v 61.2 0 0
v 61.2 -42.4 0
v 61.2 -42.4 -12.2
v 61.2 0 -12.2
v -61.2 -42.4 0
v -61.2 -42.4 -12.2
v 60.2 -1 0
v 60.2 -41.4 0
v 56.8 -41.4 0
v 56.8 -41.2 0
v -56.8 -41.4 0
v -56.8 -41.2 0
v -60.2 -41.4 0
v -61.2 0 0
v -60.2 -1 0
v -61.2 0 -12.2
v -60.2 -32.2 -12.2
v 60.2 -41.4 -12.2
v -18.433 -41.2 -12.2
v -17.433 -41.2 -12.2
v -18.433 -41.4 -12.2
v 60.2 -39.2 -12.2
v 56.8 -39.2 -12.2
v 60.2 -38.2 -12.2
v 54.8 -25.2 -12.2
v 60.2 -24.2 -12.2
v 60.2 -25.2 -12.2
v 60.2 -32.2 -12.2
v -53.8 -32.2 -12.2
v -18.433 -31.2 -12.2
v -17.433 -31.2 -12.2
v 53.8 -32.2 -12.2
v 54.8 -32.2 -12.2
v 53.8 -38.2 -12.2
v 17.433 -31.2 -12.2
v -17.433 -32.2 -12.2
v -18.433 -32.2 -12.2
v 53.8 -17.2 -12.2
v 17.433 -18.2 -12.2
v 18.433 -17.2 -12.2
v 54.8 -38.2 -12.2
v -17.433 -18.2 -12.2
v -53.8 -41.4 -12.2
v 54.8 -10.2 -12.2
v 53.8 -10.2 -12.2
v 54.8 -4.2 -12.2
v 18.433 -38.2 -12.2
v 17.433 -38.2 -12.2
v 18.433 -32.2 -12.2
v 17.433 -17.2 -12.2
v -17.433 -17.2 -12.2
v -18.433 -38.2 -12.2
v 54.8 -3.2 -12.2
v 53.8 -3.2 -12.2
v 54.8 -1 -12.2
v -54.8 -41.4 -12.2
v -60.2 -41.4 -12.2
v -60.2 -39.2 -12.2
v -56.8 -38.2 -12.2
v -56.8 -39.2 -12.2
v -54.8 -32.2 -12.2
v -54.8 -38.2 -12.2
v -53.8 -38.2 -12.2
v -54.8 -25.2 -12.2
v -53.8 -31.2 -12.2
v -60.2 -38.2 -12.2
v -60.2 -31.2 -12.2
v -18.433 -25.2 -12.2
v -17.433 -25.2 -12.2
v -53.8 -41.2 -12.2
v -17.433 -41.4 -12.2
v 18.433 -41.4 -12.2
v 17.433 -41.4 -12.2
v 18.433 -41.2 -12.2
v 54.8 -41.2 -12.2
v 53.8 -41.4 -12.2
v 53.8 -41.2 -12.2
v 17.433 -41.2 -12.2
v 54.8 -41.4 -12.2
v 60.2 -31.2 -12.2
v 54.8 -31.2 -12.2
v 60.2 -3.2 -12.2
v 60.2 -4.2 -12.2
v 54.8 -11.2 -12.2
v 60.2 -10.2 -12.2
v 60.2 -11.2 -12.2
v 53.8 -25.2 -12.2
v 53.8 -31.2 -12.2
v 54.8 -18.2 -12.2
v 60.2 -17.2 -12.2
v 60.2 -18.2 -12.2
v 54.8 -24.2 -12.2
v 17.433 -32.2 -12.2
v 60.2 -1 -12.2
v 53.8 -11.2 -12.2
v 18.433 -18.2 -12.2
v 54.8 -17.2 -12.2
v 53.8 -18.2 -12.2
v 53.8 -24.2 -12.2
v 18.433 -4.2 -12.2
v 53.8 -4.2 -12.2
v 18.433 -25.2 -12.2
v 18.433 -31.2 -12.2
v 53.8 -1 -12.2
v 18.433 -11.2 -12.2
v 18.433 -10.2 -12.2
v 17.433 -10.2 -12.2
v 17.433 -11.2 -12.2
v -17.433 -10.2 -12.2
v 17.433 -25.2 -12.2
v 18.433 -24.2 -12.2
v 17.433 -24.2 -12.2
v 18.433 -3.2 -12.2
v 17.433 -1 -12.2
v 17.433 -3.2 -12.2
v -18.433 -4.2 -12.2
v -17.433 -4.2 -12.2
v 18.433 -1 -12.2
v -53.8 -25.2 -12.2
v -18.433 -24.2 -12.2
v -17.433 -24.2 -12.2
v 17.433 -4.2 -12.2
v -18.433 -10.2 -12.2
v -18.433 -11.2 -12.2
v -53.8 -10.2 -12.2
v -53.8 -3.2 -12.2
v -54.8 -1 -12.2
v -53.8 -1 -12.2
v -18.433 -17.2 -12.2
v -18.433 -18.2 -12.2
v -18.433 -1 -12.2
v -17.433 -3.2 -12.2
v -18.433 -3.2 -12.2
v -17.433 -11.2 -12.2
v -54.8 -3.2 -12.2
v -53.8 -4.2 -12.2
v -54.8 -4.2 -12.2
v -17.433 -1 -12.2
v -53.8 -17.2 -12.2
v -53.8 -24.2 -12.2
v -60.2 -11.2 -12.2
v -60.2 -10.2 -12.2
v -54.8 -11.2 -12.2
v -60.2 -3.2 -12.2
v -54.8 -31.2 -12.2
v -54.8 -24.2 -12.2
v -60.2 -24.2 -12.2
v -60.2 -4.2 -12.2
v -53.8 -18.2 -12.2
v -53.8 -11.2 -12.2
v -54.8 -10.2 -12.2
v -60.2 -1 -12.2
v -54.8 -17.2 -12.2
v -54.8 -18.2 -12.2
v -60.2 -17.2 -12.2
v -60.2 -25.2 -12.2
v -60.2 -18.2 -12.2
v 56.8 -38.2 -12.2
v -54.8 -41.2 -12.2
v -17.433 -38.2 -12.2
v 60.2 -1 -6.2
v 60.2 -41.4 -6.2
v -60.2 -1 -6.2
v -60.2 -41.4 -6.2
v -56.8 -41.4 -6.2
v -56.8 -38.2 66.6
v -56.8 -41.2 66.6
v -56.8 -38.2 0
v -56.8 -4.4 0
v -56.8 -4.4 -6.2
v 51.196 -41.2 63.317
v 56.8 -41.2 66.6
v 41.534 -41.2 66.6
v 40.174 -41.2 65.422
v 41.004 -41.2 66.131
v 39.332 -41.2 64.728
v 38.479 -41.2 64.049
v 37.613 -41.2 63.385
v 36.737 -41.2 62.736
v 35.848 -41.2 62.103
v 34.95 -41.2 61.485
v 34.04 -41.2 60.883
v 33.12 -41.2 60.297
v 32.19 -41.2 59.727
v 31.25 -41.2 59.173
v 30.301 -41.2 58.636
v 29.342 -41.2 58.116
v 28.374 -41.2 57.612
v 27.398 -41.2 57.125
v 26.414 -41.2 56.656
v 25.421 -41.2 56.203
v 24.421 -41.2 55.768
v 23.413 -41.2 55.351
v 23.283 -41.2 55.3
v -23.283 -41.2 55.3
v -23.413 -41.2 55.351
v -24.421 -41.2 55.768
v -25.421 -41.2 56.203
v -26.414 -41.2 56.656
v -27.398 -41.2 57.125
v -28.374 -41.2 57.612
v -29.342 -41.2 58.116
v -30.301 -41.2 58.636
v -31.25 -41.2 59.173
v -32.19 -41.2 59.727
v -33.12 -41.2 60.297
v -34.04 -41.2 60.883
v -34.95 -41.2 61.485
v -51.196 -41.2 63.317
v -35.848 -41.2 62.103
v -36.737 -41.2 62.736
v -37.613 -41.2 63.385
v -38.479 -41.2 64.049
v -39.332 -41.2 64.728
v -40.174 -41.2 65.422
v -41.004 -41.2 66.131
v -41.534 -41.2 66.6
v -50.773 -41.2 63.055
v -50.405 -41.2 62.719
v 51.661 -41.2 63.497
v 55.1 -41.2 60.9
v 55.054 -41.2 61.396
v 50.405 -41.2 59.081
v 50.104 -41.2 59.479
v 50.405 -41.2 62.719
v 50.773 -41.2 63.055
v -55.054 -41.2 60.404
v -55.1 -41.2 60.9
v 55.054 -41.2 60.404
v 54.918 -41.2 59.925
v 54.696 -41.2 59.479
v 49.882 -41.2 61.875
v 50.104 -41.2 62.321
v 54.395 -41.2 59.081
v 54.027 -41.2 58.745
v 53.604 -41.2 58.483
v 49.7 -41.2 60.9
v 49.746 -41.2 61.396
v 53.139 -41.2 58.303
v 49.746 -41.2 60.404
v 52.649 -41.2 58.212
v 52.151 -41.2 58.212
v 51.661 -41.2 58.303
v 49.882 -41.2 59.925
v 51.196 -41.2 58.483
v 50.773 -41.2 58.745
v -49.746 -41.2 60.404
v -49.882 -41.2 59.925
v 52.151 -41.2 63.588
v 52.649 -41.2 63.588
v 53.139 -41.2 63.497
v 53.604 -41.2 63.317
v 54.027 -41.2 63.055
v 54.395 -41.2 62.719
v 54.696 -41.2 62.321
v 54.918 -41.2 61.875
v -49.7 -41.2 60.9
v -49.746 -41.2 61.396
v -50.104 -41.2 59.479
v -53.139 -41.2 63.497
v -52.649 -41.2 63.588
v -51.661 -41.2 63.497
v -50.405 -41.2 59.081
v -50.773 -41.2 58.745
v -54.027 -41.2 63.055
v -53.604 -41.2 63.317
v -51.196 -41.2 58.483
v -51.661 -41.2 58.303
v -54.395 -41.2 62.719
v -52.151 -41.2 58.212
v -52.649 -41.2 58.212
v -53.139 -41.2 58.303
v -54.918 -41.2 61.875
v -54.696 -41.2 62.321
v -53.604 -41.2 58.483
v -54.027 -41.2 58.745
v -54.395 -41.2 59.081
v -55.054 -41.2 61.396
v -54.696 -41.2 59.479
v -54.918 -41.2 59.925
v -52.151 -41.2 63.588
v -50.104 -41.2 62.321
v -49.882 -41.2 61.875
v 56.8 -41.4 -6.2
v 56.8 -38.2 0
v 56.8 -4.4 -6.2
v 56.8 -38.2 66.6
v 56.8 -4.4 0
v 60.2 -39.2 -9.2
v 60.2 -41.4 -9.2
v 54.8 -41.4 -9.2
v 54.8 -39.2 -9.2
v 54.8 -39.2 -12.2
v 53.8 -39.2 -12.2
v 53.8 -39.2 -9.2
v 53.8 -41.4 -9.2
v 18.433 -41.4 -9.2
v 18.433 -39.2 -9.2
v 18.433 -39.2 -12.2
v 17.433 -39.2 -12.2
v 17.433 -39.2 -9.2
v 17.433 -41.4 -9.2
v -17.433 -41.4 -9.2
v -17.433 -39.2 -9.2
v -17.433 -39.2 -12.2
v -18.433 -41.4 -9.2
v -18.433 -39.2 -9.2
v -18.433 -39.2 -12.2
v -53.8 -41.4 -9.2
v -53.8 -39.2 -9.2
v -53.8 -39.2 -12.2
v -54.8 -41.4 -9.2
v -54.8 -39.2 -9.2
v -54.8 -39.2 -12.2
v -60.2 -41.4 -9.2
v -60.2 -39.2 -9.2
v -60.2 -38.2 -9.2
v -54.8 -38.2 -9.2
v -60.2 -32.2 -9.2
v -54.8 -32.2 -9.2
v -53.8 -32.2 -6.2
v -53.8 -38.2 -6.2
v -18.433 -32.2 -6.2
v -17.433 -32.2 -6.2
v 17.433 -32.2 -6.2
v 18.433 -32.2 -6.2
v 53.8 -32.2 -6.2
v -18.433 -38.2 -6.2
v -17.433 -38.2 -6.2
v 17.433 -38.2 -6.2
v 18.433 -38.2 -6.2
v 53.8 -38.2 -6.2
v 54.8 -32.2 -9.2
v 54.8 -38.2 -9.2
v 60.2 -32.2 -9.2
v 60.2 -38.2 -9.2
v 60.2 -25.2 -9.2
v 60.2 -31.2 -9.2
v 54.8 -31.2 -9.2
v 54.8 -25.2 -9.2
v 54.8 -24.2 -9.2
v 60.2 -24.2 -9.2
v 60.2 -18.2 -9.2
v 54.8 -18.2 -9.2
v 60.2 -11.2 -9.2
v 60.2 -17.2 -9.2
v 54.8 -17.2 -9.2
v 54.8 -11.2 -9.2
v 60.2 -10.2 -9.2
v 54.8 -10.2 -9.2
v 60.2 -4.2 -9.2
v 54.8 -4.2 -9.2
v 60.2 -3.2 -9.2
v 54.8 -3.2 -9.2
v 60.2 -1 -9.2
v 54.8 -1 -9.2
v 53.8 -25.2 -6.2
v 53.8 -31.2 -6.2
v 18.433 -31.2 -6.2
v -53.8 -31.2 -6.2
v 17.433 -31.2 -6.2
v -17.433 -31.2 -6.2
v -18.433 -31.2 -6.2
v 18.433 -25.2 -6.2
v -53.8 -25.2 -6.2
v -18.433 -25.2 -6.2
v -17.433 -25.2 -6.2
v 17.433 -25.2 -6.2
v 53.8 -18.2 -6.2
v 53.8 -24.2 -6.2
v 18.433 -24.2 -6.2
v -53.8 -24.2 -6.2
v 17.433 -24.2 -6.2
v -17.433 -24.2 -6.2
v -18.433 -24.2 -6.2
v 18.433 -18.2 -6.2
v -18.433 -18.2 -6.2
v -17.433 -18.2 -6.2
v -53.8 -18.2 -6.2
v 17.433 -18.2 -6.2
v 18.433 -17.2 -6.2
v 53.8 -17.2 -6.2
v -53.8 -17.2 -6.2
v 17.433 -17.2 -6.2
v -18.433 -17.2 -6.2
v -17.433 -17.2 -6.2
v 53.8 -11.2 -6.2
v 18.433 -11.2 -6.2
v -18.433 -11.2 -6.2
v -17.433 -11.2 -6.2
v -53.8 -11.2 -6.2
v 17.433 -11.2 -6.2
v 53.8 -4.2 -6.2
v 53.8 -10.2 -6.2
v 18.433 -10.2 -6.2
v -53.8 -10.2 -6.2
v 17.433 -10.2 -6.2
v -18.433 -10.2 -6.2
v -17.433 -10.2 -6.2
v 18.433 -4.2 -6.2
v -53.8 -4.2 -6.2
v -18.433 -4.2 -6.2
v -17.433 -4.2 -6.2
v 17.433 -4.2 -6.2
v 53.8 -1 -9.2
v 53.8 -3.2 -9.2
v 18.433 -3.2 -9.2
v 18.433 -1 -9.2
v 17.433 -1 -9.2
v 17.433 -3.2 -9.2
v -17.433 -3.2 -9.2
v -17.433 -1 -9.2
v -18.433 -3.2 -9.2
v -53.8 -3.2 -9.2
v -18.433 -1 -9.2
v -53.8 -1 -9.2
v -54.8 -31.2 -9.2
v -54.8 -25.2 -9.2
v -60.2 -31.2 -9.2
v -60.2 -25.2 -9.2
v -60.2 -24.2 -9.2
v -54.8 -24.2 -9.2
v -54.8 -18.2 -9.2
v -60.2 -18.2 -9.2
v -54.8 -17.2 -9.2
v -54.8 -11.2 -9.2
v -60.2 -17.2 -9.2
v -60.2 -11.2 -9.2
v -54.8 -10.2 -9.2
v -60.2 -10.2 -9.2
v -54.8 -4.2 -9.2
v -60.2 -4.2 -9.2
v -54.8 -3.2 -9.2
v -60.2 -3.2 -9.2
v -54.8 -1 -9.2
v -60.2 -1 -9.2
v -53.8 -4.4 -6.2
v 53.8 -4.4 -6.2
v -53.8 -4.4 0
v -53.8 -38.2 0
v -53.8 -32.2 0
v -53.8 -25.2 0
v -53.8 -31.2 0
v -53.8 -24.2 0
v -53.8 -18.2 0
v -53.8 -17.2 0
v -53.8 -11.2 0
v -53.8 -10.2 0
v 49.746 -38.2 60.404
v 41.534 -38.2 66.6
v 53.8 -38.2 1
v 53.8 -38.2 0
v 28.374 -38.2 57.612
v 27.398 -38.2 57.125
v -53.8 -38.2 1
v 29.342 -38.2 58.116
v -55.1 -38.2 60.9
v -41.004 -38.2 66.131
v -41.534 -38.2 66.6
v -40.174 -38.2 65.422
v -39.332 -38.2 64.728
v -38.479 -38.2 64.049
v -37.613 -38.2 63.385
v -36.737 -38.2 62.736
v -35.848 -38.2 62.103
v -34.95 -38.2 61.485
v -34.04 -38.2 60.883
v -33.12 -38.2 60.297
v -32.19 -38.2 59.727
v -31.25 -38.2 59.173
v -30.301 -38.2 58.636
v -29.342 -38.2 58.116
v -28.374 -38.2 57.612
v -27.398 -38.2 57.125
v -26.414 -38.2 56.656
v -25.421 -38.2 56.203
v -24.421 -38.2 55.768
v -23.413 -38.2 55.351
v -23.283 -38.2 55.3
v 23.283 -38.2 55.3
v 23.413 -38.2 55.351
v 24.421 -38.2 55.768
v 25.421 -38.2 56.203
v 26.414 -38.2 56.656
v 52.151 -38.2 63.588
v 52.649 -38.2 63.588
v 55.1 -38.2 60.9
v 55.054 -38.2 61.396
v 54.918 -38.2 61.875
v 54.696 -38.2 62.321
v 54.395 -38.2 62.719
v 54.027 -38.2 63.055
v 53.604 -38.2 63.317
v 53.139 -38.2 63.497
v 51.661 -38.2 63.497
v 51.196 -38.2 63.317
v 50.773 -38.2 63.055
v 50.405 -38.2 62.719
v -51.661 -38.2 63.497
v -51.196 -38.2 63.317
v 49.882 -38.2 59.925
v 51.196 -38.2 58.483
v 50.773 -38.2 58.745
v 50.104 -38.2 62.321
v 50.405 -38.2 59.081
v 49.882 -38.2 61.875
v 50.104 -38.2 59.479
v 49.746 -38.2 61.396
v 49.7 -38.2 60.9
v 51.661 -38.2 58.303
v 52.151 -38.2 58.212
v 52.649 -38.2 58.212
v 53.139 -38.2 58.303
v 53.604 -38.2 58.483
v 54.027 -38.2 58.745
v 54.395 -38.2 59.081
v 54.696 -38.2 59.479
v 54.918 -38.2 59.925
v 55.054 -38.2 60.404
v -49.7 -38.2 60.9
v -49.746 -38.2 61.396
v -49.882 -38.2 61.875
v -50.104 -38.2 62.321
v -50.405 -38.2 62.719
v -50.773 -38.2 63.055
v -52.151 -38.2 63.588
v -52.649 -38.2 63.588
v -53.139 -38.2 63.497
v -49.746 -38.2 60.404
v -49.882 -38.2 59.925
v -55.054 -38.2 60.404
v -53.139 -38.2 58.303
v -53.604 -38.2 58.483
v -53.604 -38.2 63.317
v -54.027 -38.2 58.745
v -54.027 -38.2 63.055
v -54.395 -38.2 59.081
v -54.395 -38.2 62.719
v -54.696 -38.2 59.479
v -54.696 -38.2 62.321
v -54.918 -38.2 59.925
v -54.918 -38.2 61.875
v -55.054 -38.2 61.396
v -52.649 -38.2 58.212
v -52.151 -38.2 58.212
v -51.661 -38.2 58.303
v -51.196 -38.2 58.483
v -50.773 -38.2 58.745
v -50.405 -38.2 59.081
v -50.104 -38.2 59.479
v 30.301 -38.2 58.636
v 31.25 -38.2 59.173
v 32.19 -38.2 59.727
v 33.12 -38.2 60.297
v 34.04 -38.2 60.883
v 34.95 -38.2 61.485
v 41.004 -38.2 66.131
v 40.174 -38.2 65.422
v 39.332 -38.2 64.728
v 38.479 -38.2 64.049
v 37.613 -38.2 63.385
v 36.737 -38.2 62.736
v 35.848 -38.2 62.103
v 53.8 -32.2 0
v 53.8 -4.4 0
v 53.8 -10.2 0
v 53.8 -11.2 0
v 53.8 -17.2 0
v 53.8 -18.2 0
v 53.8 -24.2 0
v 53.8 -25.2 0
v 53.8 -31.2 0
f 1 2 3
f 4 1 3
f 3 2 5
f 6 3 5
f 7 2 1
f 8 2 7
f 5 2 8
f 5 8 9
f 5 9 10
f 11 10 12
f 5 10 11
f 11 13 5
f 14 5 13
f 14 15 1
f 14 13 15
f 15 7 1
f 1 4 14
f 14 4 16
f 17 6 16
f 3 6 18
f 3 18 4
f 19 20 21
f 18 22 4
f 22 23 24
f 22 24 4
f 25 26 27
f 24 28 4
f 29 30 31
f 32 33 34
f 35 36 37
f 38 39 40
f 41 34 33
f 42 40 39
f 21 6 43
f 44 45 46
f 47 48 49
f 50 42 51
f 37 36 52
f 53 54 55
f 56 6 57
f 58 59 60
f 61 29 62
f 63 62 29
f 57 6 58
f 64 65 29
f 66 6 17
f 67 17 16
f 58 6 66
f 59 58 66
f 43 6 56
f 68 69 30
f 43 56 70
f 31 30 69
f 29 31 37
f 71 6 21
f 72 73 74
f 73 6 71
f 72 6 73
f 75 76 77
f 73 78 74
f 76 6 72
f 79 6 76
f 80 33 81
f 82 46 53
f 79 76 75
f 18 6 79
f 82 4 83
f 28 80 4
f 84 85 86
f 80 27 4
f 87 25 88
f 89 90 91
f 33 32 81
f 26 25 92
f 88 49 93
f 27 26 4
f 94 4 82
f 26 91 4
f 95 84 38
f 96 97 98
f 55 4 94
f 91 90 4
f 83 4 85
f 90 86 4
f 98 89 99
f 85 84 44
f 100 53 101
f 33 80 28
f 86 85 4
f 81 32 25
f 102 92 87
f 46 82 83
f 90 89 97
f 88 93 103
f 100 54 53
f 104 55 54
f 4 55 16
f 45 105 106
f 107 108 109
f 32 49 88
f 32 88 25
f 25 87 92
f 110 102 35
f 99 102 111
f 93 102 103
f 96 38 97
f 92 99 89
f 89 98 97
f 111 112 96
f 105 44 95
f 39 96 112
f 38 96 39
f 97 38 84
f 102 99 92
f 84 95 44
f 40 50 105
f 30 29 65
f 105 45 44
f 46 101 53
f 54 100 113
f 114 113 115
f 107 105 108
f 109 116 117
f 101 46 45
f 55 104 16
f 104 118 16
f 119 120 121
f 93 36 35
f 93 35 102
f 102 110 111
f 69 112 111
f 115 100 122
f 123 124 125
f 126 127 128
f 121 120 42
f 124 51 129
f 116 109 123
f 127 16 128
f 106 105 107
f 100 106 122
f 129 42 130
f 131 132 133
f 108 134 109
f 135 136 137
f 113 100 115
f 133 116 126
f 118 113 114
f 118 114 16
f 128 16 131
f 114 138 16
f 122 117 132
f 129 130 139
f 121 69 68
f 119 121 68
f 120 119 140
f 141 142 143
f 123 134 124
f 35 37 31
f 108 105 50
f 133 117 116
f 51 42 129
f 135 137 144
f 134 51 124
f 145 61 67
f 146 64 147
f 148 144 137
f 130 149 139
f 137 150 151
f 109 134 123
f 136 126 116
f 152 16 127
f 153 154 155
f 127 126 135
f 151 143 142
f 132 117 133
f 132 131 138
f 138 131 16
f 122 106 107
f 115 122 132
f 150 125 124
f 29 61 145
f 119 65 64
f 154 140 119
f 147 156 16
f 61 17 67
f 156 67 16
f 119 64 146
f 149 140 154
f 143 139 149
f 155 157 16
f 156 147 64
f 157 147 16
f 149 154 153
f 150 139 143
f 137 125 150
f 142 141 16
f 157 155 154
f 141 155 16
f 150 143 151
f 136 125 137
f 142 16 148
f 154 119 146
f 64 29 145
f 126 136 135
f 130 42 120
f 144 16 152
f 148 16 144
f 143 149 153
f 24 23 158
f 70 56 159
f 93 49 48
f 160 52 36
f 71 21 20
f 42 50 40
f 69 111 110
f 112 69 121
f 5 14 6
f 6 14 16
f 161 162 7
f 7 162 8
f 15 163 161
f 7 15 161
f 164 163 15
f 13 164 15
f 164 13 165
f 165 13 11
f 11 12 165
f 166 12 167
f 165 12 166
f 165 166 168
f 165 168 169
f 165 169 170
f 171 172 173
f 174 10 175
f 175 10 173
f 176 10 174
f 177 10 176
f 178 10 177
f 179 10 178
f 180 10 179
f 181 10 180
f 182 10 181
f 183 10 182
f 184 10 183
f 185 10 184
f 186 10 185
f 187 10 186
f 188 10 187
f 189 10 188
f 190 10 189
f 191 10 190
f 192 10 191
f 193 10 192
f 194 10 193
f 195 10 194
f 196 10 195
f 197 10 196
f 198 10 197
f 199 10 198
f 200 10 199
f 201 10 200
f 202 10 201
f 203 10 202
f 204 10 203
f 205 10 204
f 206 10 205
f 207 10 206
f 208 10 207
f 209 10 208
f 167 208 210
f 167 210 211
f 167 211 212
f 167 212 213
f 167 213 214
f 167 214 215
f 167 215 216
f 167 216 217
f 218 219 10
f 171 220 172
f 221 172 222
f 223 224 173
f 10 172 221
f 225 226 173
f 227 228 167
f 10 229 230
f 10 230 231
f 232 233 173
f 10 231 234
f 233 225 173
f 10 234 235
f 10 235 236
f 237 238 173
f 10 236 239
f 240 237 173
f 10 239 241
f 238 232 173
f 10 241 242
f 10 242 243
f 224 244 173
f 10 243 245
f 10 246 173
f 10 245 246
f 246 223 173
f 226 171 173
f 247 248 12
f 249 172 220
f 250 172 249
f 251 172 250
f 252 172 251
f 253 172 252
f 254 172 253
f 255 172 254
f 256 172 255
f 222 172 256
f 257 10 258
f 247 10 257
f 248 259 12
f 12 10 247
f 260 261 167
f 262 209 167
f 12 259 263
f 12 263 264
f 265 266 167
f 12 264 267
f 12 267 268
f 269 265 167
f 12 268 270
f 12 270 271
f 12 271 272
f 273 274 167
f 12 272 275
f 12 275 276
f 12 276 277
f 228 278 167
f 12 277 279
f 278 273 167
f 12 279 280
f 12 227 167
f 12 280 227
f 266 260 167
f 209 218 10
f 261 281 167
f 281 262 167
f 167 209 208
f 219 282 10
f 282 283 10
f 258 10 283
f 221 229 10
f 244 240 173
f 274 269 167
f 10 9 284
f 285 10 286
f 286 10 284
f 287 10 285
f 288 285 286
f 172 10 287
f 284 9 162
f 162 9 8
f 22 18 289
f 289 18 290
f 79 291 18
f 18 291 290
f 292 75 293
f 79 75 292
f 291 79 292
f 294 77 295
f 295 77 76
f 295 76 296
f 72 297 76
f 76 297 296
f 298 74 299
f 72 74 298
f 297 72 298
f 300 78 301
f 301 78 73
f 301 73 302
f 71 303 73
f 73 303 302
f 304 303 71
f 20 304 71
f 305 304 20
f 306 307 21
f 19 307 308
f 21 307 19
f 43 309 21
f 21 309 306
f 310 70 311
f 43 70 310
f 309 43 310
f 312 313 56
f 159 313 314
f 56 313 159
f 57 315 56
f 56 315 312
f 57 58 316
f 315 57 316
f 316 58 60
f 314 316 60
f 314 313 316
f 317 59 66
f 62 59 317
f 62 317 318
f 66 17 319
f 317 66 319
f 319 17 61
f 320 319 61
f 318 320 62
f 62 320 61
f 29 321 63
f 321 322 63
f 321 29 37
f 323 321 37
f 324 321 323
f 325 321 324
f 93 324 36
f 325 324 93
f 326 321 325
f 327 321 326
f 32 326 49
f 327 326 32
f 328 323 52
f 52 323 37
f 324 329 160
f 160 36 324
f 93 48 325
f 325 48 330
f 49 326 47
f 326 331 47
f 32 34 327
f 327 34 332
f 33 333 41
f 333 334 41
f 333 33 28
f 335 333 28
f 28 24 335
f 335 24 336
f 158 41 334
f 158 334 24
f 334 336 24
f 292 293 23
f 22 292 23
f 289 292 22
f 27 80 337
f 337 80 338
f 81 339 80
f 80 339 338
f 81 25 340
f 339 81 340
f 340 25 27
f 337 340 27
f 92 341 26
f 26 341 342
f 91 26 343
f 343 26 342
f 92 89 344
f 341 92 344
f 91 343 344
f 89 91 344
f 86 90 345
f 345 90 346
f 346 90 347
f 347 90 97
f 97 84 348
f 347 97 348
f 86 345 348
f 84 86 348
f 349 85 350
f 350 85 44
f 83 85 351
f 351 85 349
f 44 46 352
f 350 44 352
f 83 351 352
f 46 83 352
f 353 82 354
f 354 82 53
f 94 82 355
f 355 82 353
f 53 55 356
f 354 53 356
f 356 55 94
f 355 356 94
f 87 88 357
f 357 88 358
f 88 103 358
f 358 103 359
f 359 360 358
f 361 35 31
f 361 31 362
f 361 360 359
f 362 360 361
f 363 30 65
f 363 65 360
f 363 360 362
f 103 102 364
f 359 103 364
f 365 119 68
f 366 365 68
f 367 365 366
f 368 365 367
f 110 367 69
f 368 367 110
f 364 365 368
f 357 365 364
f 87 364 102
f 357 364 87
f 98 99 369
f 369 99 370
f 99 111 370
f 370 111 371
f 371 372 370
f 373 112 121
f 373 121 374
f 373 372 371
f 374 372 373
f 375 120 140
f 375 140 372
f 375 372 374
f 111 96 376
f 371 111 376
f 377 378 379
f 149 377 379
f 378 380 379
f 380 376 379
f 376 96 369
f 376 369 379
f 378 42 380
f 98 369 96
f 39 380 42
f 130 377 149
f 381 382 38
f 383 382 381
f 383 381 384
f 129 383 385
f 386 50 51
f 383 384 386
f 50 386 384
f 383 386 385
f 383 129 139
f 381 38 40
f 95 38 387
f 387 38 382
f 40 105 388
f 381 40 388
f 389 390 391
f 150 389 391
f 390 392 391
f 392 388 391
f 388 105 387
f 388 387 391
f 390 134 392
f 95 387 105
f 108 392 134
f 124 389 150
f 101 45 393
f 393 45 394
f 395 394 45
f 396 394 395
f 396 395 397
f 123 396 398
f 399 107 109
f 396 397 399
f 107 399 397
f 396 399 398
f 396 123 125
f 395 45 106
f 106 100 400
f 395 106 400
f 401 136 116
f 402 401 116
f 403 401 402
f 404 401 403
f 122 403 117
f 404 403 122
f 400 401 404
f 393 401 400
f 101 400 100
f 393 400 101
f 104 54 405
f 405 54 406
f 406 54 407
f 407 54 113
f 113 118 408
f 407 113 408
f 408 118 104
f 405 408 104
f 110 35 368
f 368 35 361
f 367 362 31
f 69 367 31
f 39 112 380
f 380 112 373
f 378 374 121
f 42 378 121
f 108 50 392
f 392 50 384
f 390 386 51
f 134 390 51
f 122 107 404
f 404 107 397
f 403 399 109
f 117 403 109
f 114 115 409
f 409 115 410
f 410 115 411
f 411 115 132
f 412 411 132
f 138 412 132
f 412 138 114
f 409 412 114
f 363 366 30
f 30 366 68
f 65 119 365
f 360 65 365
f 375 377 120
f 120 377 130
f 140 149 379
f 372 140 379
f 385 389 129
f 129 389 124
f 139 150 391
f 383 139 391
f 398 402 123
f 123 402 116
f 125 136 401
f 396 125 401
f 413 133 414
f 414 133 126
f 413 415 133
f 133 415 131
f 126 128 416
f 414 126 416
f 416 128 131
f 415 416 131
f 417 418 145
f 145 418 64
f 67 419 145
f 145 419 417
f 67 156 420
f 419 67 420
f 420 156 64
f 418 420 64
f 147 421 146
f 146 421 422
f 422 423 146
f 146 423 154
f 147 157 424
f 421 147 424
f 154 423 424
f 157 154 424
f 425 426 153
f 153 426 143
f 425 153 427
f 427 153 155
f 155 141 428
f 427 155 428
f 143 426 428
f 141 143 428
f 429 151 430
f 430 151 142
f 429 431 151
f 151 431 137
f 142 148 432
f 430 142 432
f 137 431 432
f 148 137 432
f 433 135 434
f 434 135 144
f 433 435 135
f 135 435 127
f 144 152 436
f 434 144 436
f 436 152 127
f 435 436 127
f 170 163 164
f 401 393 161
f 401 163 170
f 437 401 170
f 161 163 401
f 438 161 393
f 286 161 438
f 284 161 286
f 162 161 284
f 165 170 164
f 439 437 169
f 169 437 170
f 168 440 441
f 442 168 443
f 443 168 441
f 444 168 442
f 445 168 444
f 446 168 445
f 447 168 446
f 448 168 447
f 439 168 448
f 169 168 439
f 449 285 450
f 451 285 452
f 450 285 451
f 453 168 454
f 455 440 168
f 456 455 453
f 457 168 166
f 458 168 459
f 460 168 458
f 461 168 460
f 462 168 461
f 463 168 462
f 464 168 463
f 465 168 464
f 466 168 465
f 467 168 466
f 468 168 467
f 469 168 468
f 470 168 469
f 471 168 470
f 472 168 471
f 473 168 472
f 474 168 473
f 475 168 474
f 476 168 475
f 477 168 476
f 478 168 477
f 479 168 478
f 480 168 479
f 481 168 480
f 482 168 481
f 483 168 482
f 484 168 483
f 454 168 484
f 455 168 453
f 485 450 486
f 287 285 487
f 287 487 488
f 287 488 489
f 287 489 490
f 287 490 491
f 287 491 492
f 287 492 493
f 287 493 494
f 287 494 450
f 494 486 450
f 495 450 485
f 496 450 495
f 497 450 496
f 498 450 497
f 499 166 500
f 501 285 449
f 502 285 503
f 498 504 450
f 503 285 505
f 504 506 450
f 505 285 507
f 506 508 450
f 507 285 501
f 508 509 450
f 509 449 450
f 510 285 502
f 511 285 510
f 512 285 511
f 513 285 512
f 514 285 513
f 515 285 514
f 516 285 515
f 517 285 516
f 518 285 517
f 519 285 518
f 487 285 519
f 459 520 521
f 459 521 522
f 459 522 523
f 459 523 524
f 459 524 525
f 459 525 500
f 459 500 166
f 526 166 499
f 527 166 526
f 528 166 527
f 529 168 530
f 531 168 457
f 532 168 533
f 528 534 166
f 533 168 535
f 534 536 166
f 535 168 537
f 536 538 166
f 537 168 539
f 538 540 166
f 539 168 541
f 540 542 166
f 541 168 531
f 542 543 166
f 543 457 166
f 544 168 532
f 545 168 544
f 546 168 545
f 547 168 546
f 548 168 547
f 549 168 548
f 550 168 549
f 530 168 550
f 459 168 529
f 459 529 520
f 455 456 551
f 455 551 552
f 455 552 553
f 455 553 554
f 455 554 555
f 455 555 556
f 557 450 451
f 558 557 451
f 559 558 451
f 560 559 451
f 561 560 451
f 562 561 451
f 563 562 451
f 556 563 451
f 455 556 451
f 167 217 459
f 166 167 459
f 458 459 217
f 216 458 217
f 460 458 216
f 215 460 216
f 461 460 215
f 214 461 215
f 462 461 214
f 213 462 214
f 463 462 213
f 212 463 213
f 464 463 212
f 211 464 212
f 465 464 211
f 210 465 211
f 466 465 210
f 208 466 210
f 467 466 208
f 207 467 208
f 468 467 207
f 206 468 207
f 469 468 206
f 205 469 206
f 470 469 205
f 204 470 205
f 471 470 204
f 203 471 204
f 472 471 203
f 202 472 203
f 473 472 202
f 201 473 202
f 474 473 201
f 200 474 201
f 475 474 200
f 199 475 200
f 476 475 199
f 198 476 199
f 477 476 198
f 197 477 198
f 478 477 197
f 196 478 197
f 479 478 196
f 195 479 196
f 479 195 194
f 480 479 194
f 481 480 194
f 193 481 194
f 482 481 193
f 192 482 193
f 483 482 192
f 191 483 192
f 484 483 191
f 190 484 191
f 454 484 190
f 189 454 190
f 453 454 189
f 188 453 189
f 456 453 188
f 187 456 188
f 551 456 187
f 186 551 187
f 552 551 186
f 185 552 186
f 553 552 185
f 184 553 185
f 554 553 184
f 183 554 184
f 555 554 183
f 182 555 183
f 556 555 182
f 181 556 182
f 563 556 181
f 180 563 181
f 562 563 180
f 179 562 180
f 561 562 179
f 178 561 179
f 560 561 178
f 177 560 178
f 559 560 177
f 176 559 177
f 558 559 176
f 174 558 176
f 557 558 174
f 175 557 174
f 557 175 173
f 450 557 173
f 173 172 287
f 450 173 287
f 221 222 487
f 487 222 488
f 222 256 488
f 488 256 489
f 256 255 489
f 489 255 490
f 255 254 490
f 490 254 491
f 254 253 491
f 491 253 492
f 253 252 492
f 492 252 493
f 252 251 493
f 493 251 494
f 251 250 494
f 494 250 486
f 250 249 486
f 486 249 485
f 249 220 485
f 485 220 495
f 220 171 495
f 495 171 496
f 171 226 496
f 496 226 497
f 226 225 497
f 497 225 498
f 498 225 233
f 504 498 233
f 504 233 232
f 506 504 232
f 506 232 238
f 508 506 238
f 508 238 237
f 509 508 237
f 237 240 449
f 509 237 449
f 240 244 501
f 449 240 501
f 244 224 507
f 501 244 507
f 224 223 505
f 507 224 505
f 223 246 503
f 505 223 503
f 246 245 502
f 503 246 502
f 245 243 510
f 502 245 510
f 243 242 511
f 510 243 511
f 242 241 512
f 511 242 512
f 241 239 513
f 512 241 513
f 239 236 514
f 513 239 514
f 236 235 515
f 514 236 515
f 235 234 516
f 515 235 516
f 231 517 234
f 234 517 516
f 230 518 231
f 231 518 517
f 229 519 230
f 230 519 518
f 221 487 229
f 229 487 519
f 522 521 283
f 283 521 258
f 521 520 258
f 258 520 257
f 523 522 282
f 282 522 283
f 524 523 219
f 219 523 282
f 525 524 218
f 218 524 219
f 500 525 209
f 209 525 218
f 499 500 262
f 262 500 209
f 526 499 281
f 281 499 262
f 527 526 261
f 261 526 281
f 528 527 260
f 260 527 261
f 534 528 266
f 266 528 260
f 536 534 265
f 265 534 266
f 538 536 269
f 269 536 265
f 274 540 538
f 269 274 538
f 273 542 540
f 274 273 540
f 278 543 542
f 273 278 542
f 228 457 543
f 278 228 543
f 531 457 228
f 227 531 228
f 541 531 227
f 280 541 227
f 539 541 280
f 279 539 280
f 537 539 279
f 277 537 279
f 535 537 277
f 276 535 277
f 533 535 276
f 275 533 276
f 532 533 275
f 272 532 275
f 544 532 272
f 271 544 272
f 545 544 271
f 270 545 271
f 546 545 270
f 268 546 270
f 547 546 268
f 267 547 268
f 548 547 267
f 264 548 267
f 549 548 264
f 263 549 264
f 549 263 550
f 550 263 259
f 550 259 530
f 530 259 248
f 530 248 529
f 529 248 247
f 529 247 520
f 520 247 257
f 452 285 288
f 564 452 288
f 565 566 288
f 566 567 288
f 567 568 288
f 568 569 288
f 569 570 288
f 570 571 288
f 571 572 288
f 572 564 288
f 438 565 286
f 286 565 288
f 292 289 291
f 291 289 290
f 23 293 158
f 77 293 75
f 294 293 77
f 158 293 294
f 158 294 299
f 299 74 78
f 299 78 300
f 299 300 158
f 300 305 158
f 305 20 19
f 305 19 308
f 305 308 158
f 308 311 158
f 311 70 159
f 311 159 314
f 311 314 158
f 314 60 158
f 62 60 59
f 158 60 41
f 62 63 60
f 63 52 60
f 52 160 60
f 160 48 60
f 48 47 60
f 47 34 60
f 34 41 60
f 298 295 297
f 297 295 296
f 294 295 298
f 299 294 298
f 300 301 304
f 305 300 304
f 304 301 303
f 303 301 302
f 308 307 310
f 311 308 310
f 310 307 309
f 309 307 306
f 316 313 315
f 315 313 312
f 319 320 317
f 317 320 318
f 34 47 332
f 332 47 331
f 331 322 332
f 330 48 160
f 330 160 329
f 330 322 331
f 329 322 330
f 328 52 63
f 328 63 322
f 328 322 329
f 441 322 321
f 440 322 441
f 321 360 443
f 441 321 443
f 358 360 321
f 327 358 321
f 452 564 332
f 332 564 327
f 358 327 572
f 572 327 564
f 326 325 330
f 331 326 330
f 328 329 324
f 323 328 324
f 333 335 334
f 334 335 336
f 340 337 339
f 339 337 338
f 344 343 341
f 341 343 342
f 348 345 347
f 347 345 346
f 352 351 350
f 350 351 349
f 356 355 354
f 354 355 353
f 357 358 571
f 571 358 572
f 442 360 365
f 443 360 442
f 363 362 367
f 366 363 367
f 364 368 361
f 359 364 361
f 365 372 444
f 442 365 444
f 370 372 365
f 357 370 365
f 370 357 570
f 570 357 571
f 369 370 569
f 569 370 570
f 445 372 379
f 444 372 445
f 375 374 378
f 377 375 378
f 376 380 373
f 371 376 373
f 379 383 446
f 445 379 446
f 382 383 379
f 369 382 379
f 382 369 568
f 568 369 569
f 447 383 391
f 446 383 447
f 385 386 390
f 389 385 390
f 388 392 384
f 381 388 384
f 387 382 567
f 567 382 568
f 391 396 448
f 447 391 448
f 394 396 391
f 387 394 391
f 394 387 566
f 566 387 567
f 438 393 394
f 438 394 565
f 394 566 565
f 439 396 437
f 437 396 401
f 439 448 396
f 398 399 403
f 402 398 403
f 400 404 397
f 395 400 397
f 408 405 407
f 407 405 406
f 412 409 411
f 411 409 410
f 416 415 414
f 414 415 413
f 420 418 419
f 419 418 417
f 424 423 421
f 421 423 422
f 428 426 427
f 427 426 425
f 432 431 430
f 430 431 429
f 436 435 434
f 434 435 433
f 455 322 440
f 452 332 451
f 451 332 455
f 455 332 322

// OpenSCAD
// file: functions.scad
/*******************************************************************

This OpenSCAD code and its rendered 3D model are part of the

	Kühling&Kühling RepRap Industrial 3D Printer


All details, BOM, assembling instructions and latest sources:
	http://kuehlingkuehling.de

Designed and developed by:
	Jonas Kühling <mail@jonaskuehling.de>
	Simon Kühling <mail@simonkuehling.de>

Licensed under:
	Creative Commons Attribution-ShareAlike
	CC BY-SA 3.0
	http://creativecommons.org/licenses/by-sa/3.0/

*******************************************************************/

module teardrop (r=4.5,h=20,alpha=45,teardropcorner=0,fulldrop=0){		// tear drop hole for top-centering
											// use teardropcorner=1 for bottom horizontal corners
	render()
	translate([-h/2,0,0])
		rotate([-270,0+(teardropcorner*180),90])
			difference(){
				linear_extrude(height=h){
					circle(r);
					polygon(points=[[0,0],[r*cos(alpha),r*sin(alpha)],[0,r/sin(alpha)],[-r*cos(alpha),r*sin(alpha)]], paths=[[0,1,2,3]]);
				}
				if(fulldrop==0) 
					translate([0,(r/sin(alpha))/2+r,h/2]) cube([2*r+2,r/sin(alpha),h+2],center=true);
			}
}

//teardrop(4.5,22,fulldrop=true);



module teardropcentering (r=4.5,h=20,alpha=45){				// tear drop hole for top-centering
	centering_offset_factor = 1.1;
	render()
	translate([-h/2,0,0])
		rotate([-270,0,90])
			difference(){
				linear_extrude(height=h){
					circle(r, $fn=24);
					polygon(points=[[0,0],[r*cos(alpha),r*sin(alpha)],[0,r/sin(alpha)],[-r*cos(alpha),r*sin(alpha)]], paths=[[0,1,2,3]]);
				}
				translate([0,(r/sin(alpha))/2+r*centering_offset_factor,h/2]) cube([2*r+2,r/sin(alpha),h+2],center=true);
			}
}

//teardropcentering();



module teardropcentering_half (r=4.5,h=20, bottom=0,alpha=45){				// tear drop hole for top-centering
																// upper half (bottom=0) or bottom half (bottom=1)
	centering_offset_factor = 1.2;
	render()
	translate([-h/2,0,0])
		rotate([-270,0,90])
			difference(){
				linear_extrude(height=h){
					circle(r, $fn=24);
					polygon(points=[[0,0],[r*cos(alpha),r*sin(alpha)],[0,r/sin(alpha)],[-r*cos(alpha),r*sin(alpha)]], paths=[[0,1,2,3]]);
				}
				translate([0,(r/sin(alpha))/2+r*centering_offset_factor,h/2]) cube([2*r+2,r/sin(alpha),h+2],center=true);
				translate([0,-(r*centering_offset_factor)/2-0.5+bottom*(r*centering_offset_factor+1),h/2]) cube([2*r+2,r*centering_offset_factor+1,h+2],center=true);
			}
}

//teardropcentering_half(bottom=0);


module polyhole(d,h){
	n = max(round(2 * d),3);
	cylinder(h = h, r = (d / 2) / cos (180 / n), $fn = n, center=true);
}



module roundcorner(radius,edge_length){
	render()
	translate([0,0,-1])
		difference(){
			translate([-1,-1,0])
				cube(size = [radius+1,radius+1,edge_length+2], center = false);
			translate(v = [radius,radius,-1])
				cylinder(h = edge_length+4, r=radius, center=false,$fs=0.1);
		}
}

//roundcorner(5,5);



module roundcorner_tear(radius,edge_length){
	render()
	difference(){
		translate([-1,-1,-1])
			cube(size = [edge_length+2, radius+1, radius+1], center = false);
		translate([(edge_length+4)/2-2, radius, radius])
			teardrop(radius, edge_length+4,teardropcorner=1);
	}
}

//roundcorner_tear(8,20);


module roundedge_tear(radius){
	render()
	difference(){
		translate([-1,-1,-1])
			cube(size = [radius+1, radius+1, radius+1], center = false);
		translate([radius,radius,radius])
			union(){
				sphere(r=radius, $fs=0.1);
				translate([0,0,-radius])
					cylinder(r1=(radius*sin(45))-(radius-(radius*sin(45))),r2=radius*sin(45),h=(radius-(radius*sin(45))), $fs=0.1);
			}
	}
}

//roundedge_tear(20);



module roundedge(radius){
	render()
	difference(){
		translate([-1,-1,-1])
			cube(size = [radius+1, radius+1, radius+1], center = false);
		translate([radius,radius,radius])
			sphere(r=radius, $fs=0.1);
	}
}

//roundedge(5);


module nut_trap(nut_wrench_size,trap_height,vertical=0, clearance=0.2,center=true){		// M3 wrench size = 5.5
	radius = cornerdiameter(nut_wrench_size+2*clearance) /2;
	rotate([0,vertical*90,0])
		cylinder(h = trap_height, r = radius, center=center, $fn = 6);
}

//nut_trap(5,5,0);

module nut_slot(nut_wrench_size,nut_height, nut_elevation,vertical=0, clearance=0.2){		// M3 wrench size = 5.5
	radius = cornerdiameter(nut_wrench_size+2*clearance) /2;
	slot_height = nut_height+2*clearance;
	slot_width = nut_wrench_size+2*clearance;
	rotate([0,vertical*270,0]){
		cylinder(h = slot_height, r = radius, center=true, $fn = 6);
		translate([0,-slot_width/2,-slot_height/2]) cube([nut_elevation+1,slot_width,slot_height]);
	}
}

//nut_slot(5.5,3,4,1);

function cornerdiameter(wrench_size) =  2* ((wrench_size)/2)/ cos(180/6);
function cornerdiameter_8(wrench_size) =  2* ((wrench_size)/2)/ cos(180/8);
// main file
/*******************************************************************

This OpenSCAD code and its rendered 3D model are part of the

	Kühling&Kühling RepRap Industrial 3D Printer


All details, BOM, assembling instructions and latest sources:
	http://kuehlingkuehling.de

Designed and developed by:
	Jonas Kühling <mail@jonaskuehling.de>
	Simon Kühling <mail@simonkuehling.de>

License:
	Creative Commons Attribution-ShareAlike 4.0 International (CC BY-SA 4.0)
	https://creativecommons.org/licenses/by-sa/4.0/

*******************************************************************/

include <configuration.scad>



// RENDER FOR PRINTING
rotate([0,180,0]) air_heater_top();



module air_heater_top(){
	difference(){

		// main body
		union(){
			translate([-air_heater_top_body_width/2,-air_heater_top_body_length,0])
				cube([air_heater_top_body_width,air_heater_top_body_length,air_heater_top_body_height]);
			translate([-(air_heater_top_body_width/2-wall_thin-clearance-air_heater_uprofile_thickness-clearance),-air_heater_top_body_length+wall_thin+clearance,-(air_heater_heating_insert_height+air_heater_heating_insert_top_clearance-2*wall-clearance+(air_heater_fan_side/2-air_heater_fan_hole_dist/2+air_heater_fan_screw_dia/2+clearance+wall))])
				cube([2*(air_heater_top_body_width/2-wall_thin-clearance-air_heater_uprofile_thickness-clearance),air_heater_uprofile_thickness,air_heater_top_body_height+air_heater_heating_insert_height+air_heater_heating_insert_top_clearance-2*wall-clearance+(air_heater_fan_side/2-air_heater_fan_hole_dist/2+air_heater_fan_screw_dia/2+clearance+wall)]);
		}

		// air canal
		difference(){
			union(){
				translate([-(air_heater_top_body_width/2-wall_thin-clearance-air_heater_uprofile_thickness-clearance-wall),-(air_heater_uprofile_height-2*air_heater_uprofile_thickness)/2-air_heater_top_body_length/2,-1])
					cube([2*(air_heater_top_body_width/2-wall_thin-clearance-air_heater_uprofile_thickness-clearance-wall),air_heater_uprofile_height-2*air_heater_uprofile_thickness,air_heater_top_body_height+2]);
				translate([-(air_heater_top_body_width/2-wall_thin),-(air_heater_top_body_length-2*wall_thin)/2-air_heater_top_body_length/2,air_heater_top_body_height-wall])
					cube([2*(air_heater_top_body_width/2-wall_thin),air_heater_top_body_length-2*wall_thin,wall+1]);
			}
			for(i=[0,1])
				mirror([i,0,0]){
					translate([-wall_thin/2+(air_heater_top_body_width/2-wall_thin-clearance-air_heater_uprofile_thickness-clearance-wall)/3,-air_heater_top_body_length-1,2*wall+clearance])
						cube([wall_thin,air_heater_top_body_length+2,air_heater_top_body_height+2]);
					translate([-wall_thin/2+(air_heater_top_body_width/2-wall_thin-clearance-air_heater_uprofile_thickness-clearance-wall)+wall_thin/2,-air_heater_top_body_length-1,2*wall+clearance])
						cube([wall_thin,air_heater_top_body_length+2,air_heater_top_body_height+2]);
				}
			translate([0,-air_heater_top_body_length/2,0])
				for(i=[0,1])
					mirror([0,i,0])
						for(j=[0:((air_heater_top_body_length/2)/(2*wall+wall_thin))])
							translate([-(air_heater_top_body_width+2)/2,wall+j*(2*wall+wall_thin),-3])
								cube([air_heater_top_body_width+2,wall_thin,air_heater_top_body_height+6]);
			translate([-air_heater_top_body_width/2-2,-2*air_heater_top_body_length+wall_thin+clearance+wall,-air_heater_top_body_height+wall+clearance+wall])
				cube([air_heater_top_body_width+4,air_heater_top_body_length,air_heater_top_body_height]);
			difference(){
				translate([-(air_heater_top_body_width/2-wall_thin-clearance-air_heater_uprofile_thickness-clearance-wall)-wall_thin,-(air_heater_uprofile_height-2*air_heater_uprofile_thickness)/2-air_heater_top_body_length/2-wall_thin,-1])
					cube([2*(air_heater_top_body_width/2-wall_thin-clearance-air_heater_uprofile_thickness-clearance-wall)+2*wall_thin,air_heater_uprofile_height-2*air_heater_uprofile_thickness+2*wall_thin,air_heater_top_body_height+2]);
				translate([-(air_heater_top_body_width/2-wall_thin-clearance-air_heater_uprofile_thickness-clearance-wall),-(air_heater_uprofile_height-2*air_heater_uprofile_thickness)/2-air_heater_top_body_length/2,-2])
					cube([2*(air_heater_top_body_width/2-wall_thin-clearance-air_heater_uprofile_thickness-clearance-wall),air_heater_uprofile_height-2*air_heater_uprofile_thickness,air_heater_top_body_height+4]);
			}
		}

		// heater u-profile recess
		difference(){
			translate([-(air_heater_top_body_width-2*wall_thin)/2,-air_heater_top_body_length+wall_thin,-1])
				cube([air_heater_top_body_width-2*wall_thin,air_heater_top_body_length-2*wall_thin,2*wall+clearance+1]);
			for(i=[0,1])
				mirror([i,0,0])
					translate([(air_heater_top_body_width/2-wall_thin-clearance-air_heater_uprofile_thickness-clearance-wall),-(air_heater_top_body_length-2*wall_thin-2*clearance-air_heater_uprofile_thickness-air_heater_uprofile_thickness-2*clearance)-wall_thin-clearance-air_heater_uprofile_thickness-clearance-clearance-1,-1])
						cube([wall,air_heater_top_body_length-2*wall_thin-2*clearance-air_heater_uprofile_thickness-air_heater_uprofile_thickness-clearance+1,air_heater_top_body_height+2]);
			translate([-(air_heater_top_body_width/2-wall_thin-clearance-air_heater_uprofile_thickness-clearance),-(air_heater_uprofile_height-2*air_heater_uprofile_thickness)-air_heater_top_body_length+wall_thin+clearance+air_heater_uprofile_thickness,-2])
				cube([2*(air_heater_top_body_width/2-wall_thin-clearance-air_heater_uprofile_thickness-clearance),air_heater_uprofile_height-2*air_heater_uprofile_thickness,air_heater_top_body_height+4]);
		}

		// fan mount
		translate([0,-air_heater_top_body_length,-(air_heater_heating_insert_height+air_heater_heating_insert_top_clearance-2*wall-clearance)]){
			intersection(){
				translate([0,-1,-air_heater_fan_side/2])
					rotate([-90,0,0])
						cylinder(r=air_heater_fan_dia/2,h=air_heater_top_body_length+2);
				translate([-air_heater_fan_cutout_side/2,-1,-air_heater_fan_side/2-air_heater_fan_cutout_side/2])
					cube([air_heater_fan_cutout_side,air_heater_top_body_length+2,air_heater_fan_cutout_side]);
			}
			for(i=[0,1])
				mirror([i,0,0])
					translate([air_heater_fan_hole_dist/2,-1,-air_heater_fan_side/2+air_heater_fan_hole_dist/2])
						rotate([-90,0,0])
							cylinder(r=air_heater_fan_screw_dia/2+clearance,h=air_heater_top_body_length+2);
		}
	}
}
